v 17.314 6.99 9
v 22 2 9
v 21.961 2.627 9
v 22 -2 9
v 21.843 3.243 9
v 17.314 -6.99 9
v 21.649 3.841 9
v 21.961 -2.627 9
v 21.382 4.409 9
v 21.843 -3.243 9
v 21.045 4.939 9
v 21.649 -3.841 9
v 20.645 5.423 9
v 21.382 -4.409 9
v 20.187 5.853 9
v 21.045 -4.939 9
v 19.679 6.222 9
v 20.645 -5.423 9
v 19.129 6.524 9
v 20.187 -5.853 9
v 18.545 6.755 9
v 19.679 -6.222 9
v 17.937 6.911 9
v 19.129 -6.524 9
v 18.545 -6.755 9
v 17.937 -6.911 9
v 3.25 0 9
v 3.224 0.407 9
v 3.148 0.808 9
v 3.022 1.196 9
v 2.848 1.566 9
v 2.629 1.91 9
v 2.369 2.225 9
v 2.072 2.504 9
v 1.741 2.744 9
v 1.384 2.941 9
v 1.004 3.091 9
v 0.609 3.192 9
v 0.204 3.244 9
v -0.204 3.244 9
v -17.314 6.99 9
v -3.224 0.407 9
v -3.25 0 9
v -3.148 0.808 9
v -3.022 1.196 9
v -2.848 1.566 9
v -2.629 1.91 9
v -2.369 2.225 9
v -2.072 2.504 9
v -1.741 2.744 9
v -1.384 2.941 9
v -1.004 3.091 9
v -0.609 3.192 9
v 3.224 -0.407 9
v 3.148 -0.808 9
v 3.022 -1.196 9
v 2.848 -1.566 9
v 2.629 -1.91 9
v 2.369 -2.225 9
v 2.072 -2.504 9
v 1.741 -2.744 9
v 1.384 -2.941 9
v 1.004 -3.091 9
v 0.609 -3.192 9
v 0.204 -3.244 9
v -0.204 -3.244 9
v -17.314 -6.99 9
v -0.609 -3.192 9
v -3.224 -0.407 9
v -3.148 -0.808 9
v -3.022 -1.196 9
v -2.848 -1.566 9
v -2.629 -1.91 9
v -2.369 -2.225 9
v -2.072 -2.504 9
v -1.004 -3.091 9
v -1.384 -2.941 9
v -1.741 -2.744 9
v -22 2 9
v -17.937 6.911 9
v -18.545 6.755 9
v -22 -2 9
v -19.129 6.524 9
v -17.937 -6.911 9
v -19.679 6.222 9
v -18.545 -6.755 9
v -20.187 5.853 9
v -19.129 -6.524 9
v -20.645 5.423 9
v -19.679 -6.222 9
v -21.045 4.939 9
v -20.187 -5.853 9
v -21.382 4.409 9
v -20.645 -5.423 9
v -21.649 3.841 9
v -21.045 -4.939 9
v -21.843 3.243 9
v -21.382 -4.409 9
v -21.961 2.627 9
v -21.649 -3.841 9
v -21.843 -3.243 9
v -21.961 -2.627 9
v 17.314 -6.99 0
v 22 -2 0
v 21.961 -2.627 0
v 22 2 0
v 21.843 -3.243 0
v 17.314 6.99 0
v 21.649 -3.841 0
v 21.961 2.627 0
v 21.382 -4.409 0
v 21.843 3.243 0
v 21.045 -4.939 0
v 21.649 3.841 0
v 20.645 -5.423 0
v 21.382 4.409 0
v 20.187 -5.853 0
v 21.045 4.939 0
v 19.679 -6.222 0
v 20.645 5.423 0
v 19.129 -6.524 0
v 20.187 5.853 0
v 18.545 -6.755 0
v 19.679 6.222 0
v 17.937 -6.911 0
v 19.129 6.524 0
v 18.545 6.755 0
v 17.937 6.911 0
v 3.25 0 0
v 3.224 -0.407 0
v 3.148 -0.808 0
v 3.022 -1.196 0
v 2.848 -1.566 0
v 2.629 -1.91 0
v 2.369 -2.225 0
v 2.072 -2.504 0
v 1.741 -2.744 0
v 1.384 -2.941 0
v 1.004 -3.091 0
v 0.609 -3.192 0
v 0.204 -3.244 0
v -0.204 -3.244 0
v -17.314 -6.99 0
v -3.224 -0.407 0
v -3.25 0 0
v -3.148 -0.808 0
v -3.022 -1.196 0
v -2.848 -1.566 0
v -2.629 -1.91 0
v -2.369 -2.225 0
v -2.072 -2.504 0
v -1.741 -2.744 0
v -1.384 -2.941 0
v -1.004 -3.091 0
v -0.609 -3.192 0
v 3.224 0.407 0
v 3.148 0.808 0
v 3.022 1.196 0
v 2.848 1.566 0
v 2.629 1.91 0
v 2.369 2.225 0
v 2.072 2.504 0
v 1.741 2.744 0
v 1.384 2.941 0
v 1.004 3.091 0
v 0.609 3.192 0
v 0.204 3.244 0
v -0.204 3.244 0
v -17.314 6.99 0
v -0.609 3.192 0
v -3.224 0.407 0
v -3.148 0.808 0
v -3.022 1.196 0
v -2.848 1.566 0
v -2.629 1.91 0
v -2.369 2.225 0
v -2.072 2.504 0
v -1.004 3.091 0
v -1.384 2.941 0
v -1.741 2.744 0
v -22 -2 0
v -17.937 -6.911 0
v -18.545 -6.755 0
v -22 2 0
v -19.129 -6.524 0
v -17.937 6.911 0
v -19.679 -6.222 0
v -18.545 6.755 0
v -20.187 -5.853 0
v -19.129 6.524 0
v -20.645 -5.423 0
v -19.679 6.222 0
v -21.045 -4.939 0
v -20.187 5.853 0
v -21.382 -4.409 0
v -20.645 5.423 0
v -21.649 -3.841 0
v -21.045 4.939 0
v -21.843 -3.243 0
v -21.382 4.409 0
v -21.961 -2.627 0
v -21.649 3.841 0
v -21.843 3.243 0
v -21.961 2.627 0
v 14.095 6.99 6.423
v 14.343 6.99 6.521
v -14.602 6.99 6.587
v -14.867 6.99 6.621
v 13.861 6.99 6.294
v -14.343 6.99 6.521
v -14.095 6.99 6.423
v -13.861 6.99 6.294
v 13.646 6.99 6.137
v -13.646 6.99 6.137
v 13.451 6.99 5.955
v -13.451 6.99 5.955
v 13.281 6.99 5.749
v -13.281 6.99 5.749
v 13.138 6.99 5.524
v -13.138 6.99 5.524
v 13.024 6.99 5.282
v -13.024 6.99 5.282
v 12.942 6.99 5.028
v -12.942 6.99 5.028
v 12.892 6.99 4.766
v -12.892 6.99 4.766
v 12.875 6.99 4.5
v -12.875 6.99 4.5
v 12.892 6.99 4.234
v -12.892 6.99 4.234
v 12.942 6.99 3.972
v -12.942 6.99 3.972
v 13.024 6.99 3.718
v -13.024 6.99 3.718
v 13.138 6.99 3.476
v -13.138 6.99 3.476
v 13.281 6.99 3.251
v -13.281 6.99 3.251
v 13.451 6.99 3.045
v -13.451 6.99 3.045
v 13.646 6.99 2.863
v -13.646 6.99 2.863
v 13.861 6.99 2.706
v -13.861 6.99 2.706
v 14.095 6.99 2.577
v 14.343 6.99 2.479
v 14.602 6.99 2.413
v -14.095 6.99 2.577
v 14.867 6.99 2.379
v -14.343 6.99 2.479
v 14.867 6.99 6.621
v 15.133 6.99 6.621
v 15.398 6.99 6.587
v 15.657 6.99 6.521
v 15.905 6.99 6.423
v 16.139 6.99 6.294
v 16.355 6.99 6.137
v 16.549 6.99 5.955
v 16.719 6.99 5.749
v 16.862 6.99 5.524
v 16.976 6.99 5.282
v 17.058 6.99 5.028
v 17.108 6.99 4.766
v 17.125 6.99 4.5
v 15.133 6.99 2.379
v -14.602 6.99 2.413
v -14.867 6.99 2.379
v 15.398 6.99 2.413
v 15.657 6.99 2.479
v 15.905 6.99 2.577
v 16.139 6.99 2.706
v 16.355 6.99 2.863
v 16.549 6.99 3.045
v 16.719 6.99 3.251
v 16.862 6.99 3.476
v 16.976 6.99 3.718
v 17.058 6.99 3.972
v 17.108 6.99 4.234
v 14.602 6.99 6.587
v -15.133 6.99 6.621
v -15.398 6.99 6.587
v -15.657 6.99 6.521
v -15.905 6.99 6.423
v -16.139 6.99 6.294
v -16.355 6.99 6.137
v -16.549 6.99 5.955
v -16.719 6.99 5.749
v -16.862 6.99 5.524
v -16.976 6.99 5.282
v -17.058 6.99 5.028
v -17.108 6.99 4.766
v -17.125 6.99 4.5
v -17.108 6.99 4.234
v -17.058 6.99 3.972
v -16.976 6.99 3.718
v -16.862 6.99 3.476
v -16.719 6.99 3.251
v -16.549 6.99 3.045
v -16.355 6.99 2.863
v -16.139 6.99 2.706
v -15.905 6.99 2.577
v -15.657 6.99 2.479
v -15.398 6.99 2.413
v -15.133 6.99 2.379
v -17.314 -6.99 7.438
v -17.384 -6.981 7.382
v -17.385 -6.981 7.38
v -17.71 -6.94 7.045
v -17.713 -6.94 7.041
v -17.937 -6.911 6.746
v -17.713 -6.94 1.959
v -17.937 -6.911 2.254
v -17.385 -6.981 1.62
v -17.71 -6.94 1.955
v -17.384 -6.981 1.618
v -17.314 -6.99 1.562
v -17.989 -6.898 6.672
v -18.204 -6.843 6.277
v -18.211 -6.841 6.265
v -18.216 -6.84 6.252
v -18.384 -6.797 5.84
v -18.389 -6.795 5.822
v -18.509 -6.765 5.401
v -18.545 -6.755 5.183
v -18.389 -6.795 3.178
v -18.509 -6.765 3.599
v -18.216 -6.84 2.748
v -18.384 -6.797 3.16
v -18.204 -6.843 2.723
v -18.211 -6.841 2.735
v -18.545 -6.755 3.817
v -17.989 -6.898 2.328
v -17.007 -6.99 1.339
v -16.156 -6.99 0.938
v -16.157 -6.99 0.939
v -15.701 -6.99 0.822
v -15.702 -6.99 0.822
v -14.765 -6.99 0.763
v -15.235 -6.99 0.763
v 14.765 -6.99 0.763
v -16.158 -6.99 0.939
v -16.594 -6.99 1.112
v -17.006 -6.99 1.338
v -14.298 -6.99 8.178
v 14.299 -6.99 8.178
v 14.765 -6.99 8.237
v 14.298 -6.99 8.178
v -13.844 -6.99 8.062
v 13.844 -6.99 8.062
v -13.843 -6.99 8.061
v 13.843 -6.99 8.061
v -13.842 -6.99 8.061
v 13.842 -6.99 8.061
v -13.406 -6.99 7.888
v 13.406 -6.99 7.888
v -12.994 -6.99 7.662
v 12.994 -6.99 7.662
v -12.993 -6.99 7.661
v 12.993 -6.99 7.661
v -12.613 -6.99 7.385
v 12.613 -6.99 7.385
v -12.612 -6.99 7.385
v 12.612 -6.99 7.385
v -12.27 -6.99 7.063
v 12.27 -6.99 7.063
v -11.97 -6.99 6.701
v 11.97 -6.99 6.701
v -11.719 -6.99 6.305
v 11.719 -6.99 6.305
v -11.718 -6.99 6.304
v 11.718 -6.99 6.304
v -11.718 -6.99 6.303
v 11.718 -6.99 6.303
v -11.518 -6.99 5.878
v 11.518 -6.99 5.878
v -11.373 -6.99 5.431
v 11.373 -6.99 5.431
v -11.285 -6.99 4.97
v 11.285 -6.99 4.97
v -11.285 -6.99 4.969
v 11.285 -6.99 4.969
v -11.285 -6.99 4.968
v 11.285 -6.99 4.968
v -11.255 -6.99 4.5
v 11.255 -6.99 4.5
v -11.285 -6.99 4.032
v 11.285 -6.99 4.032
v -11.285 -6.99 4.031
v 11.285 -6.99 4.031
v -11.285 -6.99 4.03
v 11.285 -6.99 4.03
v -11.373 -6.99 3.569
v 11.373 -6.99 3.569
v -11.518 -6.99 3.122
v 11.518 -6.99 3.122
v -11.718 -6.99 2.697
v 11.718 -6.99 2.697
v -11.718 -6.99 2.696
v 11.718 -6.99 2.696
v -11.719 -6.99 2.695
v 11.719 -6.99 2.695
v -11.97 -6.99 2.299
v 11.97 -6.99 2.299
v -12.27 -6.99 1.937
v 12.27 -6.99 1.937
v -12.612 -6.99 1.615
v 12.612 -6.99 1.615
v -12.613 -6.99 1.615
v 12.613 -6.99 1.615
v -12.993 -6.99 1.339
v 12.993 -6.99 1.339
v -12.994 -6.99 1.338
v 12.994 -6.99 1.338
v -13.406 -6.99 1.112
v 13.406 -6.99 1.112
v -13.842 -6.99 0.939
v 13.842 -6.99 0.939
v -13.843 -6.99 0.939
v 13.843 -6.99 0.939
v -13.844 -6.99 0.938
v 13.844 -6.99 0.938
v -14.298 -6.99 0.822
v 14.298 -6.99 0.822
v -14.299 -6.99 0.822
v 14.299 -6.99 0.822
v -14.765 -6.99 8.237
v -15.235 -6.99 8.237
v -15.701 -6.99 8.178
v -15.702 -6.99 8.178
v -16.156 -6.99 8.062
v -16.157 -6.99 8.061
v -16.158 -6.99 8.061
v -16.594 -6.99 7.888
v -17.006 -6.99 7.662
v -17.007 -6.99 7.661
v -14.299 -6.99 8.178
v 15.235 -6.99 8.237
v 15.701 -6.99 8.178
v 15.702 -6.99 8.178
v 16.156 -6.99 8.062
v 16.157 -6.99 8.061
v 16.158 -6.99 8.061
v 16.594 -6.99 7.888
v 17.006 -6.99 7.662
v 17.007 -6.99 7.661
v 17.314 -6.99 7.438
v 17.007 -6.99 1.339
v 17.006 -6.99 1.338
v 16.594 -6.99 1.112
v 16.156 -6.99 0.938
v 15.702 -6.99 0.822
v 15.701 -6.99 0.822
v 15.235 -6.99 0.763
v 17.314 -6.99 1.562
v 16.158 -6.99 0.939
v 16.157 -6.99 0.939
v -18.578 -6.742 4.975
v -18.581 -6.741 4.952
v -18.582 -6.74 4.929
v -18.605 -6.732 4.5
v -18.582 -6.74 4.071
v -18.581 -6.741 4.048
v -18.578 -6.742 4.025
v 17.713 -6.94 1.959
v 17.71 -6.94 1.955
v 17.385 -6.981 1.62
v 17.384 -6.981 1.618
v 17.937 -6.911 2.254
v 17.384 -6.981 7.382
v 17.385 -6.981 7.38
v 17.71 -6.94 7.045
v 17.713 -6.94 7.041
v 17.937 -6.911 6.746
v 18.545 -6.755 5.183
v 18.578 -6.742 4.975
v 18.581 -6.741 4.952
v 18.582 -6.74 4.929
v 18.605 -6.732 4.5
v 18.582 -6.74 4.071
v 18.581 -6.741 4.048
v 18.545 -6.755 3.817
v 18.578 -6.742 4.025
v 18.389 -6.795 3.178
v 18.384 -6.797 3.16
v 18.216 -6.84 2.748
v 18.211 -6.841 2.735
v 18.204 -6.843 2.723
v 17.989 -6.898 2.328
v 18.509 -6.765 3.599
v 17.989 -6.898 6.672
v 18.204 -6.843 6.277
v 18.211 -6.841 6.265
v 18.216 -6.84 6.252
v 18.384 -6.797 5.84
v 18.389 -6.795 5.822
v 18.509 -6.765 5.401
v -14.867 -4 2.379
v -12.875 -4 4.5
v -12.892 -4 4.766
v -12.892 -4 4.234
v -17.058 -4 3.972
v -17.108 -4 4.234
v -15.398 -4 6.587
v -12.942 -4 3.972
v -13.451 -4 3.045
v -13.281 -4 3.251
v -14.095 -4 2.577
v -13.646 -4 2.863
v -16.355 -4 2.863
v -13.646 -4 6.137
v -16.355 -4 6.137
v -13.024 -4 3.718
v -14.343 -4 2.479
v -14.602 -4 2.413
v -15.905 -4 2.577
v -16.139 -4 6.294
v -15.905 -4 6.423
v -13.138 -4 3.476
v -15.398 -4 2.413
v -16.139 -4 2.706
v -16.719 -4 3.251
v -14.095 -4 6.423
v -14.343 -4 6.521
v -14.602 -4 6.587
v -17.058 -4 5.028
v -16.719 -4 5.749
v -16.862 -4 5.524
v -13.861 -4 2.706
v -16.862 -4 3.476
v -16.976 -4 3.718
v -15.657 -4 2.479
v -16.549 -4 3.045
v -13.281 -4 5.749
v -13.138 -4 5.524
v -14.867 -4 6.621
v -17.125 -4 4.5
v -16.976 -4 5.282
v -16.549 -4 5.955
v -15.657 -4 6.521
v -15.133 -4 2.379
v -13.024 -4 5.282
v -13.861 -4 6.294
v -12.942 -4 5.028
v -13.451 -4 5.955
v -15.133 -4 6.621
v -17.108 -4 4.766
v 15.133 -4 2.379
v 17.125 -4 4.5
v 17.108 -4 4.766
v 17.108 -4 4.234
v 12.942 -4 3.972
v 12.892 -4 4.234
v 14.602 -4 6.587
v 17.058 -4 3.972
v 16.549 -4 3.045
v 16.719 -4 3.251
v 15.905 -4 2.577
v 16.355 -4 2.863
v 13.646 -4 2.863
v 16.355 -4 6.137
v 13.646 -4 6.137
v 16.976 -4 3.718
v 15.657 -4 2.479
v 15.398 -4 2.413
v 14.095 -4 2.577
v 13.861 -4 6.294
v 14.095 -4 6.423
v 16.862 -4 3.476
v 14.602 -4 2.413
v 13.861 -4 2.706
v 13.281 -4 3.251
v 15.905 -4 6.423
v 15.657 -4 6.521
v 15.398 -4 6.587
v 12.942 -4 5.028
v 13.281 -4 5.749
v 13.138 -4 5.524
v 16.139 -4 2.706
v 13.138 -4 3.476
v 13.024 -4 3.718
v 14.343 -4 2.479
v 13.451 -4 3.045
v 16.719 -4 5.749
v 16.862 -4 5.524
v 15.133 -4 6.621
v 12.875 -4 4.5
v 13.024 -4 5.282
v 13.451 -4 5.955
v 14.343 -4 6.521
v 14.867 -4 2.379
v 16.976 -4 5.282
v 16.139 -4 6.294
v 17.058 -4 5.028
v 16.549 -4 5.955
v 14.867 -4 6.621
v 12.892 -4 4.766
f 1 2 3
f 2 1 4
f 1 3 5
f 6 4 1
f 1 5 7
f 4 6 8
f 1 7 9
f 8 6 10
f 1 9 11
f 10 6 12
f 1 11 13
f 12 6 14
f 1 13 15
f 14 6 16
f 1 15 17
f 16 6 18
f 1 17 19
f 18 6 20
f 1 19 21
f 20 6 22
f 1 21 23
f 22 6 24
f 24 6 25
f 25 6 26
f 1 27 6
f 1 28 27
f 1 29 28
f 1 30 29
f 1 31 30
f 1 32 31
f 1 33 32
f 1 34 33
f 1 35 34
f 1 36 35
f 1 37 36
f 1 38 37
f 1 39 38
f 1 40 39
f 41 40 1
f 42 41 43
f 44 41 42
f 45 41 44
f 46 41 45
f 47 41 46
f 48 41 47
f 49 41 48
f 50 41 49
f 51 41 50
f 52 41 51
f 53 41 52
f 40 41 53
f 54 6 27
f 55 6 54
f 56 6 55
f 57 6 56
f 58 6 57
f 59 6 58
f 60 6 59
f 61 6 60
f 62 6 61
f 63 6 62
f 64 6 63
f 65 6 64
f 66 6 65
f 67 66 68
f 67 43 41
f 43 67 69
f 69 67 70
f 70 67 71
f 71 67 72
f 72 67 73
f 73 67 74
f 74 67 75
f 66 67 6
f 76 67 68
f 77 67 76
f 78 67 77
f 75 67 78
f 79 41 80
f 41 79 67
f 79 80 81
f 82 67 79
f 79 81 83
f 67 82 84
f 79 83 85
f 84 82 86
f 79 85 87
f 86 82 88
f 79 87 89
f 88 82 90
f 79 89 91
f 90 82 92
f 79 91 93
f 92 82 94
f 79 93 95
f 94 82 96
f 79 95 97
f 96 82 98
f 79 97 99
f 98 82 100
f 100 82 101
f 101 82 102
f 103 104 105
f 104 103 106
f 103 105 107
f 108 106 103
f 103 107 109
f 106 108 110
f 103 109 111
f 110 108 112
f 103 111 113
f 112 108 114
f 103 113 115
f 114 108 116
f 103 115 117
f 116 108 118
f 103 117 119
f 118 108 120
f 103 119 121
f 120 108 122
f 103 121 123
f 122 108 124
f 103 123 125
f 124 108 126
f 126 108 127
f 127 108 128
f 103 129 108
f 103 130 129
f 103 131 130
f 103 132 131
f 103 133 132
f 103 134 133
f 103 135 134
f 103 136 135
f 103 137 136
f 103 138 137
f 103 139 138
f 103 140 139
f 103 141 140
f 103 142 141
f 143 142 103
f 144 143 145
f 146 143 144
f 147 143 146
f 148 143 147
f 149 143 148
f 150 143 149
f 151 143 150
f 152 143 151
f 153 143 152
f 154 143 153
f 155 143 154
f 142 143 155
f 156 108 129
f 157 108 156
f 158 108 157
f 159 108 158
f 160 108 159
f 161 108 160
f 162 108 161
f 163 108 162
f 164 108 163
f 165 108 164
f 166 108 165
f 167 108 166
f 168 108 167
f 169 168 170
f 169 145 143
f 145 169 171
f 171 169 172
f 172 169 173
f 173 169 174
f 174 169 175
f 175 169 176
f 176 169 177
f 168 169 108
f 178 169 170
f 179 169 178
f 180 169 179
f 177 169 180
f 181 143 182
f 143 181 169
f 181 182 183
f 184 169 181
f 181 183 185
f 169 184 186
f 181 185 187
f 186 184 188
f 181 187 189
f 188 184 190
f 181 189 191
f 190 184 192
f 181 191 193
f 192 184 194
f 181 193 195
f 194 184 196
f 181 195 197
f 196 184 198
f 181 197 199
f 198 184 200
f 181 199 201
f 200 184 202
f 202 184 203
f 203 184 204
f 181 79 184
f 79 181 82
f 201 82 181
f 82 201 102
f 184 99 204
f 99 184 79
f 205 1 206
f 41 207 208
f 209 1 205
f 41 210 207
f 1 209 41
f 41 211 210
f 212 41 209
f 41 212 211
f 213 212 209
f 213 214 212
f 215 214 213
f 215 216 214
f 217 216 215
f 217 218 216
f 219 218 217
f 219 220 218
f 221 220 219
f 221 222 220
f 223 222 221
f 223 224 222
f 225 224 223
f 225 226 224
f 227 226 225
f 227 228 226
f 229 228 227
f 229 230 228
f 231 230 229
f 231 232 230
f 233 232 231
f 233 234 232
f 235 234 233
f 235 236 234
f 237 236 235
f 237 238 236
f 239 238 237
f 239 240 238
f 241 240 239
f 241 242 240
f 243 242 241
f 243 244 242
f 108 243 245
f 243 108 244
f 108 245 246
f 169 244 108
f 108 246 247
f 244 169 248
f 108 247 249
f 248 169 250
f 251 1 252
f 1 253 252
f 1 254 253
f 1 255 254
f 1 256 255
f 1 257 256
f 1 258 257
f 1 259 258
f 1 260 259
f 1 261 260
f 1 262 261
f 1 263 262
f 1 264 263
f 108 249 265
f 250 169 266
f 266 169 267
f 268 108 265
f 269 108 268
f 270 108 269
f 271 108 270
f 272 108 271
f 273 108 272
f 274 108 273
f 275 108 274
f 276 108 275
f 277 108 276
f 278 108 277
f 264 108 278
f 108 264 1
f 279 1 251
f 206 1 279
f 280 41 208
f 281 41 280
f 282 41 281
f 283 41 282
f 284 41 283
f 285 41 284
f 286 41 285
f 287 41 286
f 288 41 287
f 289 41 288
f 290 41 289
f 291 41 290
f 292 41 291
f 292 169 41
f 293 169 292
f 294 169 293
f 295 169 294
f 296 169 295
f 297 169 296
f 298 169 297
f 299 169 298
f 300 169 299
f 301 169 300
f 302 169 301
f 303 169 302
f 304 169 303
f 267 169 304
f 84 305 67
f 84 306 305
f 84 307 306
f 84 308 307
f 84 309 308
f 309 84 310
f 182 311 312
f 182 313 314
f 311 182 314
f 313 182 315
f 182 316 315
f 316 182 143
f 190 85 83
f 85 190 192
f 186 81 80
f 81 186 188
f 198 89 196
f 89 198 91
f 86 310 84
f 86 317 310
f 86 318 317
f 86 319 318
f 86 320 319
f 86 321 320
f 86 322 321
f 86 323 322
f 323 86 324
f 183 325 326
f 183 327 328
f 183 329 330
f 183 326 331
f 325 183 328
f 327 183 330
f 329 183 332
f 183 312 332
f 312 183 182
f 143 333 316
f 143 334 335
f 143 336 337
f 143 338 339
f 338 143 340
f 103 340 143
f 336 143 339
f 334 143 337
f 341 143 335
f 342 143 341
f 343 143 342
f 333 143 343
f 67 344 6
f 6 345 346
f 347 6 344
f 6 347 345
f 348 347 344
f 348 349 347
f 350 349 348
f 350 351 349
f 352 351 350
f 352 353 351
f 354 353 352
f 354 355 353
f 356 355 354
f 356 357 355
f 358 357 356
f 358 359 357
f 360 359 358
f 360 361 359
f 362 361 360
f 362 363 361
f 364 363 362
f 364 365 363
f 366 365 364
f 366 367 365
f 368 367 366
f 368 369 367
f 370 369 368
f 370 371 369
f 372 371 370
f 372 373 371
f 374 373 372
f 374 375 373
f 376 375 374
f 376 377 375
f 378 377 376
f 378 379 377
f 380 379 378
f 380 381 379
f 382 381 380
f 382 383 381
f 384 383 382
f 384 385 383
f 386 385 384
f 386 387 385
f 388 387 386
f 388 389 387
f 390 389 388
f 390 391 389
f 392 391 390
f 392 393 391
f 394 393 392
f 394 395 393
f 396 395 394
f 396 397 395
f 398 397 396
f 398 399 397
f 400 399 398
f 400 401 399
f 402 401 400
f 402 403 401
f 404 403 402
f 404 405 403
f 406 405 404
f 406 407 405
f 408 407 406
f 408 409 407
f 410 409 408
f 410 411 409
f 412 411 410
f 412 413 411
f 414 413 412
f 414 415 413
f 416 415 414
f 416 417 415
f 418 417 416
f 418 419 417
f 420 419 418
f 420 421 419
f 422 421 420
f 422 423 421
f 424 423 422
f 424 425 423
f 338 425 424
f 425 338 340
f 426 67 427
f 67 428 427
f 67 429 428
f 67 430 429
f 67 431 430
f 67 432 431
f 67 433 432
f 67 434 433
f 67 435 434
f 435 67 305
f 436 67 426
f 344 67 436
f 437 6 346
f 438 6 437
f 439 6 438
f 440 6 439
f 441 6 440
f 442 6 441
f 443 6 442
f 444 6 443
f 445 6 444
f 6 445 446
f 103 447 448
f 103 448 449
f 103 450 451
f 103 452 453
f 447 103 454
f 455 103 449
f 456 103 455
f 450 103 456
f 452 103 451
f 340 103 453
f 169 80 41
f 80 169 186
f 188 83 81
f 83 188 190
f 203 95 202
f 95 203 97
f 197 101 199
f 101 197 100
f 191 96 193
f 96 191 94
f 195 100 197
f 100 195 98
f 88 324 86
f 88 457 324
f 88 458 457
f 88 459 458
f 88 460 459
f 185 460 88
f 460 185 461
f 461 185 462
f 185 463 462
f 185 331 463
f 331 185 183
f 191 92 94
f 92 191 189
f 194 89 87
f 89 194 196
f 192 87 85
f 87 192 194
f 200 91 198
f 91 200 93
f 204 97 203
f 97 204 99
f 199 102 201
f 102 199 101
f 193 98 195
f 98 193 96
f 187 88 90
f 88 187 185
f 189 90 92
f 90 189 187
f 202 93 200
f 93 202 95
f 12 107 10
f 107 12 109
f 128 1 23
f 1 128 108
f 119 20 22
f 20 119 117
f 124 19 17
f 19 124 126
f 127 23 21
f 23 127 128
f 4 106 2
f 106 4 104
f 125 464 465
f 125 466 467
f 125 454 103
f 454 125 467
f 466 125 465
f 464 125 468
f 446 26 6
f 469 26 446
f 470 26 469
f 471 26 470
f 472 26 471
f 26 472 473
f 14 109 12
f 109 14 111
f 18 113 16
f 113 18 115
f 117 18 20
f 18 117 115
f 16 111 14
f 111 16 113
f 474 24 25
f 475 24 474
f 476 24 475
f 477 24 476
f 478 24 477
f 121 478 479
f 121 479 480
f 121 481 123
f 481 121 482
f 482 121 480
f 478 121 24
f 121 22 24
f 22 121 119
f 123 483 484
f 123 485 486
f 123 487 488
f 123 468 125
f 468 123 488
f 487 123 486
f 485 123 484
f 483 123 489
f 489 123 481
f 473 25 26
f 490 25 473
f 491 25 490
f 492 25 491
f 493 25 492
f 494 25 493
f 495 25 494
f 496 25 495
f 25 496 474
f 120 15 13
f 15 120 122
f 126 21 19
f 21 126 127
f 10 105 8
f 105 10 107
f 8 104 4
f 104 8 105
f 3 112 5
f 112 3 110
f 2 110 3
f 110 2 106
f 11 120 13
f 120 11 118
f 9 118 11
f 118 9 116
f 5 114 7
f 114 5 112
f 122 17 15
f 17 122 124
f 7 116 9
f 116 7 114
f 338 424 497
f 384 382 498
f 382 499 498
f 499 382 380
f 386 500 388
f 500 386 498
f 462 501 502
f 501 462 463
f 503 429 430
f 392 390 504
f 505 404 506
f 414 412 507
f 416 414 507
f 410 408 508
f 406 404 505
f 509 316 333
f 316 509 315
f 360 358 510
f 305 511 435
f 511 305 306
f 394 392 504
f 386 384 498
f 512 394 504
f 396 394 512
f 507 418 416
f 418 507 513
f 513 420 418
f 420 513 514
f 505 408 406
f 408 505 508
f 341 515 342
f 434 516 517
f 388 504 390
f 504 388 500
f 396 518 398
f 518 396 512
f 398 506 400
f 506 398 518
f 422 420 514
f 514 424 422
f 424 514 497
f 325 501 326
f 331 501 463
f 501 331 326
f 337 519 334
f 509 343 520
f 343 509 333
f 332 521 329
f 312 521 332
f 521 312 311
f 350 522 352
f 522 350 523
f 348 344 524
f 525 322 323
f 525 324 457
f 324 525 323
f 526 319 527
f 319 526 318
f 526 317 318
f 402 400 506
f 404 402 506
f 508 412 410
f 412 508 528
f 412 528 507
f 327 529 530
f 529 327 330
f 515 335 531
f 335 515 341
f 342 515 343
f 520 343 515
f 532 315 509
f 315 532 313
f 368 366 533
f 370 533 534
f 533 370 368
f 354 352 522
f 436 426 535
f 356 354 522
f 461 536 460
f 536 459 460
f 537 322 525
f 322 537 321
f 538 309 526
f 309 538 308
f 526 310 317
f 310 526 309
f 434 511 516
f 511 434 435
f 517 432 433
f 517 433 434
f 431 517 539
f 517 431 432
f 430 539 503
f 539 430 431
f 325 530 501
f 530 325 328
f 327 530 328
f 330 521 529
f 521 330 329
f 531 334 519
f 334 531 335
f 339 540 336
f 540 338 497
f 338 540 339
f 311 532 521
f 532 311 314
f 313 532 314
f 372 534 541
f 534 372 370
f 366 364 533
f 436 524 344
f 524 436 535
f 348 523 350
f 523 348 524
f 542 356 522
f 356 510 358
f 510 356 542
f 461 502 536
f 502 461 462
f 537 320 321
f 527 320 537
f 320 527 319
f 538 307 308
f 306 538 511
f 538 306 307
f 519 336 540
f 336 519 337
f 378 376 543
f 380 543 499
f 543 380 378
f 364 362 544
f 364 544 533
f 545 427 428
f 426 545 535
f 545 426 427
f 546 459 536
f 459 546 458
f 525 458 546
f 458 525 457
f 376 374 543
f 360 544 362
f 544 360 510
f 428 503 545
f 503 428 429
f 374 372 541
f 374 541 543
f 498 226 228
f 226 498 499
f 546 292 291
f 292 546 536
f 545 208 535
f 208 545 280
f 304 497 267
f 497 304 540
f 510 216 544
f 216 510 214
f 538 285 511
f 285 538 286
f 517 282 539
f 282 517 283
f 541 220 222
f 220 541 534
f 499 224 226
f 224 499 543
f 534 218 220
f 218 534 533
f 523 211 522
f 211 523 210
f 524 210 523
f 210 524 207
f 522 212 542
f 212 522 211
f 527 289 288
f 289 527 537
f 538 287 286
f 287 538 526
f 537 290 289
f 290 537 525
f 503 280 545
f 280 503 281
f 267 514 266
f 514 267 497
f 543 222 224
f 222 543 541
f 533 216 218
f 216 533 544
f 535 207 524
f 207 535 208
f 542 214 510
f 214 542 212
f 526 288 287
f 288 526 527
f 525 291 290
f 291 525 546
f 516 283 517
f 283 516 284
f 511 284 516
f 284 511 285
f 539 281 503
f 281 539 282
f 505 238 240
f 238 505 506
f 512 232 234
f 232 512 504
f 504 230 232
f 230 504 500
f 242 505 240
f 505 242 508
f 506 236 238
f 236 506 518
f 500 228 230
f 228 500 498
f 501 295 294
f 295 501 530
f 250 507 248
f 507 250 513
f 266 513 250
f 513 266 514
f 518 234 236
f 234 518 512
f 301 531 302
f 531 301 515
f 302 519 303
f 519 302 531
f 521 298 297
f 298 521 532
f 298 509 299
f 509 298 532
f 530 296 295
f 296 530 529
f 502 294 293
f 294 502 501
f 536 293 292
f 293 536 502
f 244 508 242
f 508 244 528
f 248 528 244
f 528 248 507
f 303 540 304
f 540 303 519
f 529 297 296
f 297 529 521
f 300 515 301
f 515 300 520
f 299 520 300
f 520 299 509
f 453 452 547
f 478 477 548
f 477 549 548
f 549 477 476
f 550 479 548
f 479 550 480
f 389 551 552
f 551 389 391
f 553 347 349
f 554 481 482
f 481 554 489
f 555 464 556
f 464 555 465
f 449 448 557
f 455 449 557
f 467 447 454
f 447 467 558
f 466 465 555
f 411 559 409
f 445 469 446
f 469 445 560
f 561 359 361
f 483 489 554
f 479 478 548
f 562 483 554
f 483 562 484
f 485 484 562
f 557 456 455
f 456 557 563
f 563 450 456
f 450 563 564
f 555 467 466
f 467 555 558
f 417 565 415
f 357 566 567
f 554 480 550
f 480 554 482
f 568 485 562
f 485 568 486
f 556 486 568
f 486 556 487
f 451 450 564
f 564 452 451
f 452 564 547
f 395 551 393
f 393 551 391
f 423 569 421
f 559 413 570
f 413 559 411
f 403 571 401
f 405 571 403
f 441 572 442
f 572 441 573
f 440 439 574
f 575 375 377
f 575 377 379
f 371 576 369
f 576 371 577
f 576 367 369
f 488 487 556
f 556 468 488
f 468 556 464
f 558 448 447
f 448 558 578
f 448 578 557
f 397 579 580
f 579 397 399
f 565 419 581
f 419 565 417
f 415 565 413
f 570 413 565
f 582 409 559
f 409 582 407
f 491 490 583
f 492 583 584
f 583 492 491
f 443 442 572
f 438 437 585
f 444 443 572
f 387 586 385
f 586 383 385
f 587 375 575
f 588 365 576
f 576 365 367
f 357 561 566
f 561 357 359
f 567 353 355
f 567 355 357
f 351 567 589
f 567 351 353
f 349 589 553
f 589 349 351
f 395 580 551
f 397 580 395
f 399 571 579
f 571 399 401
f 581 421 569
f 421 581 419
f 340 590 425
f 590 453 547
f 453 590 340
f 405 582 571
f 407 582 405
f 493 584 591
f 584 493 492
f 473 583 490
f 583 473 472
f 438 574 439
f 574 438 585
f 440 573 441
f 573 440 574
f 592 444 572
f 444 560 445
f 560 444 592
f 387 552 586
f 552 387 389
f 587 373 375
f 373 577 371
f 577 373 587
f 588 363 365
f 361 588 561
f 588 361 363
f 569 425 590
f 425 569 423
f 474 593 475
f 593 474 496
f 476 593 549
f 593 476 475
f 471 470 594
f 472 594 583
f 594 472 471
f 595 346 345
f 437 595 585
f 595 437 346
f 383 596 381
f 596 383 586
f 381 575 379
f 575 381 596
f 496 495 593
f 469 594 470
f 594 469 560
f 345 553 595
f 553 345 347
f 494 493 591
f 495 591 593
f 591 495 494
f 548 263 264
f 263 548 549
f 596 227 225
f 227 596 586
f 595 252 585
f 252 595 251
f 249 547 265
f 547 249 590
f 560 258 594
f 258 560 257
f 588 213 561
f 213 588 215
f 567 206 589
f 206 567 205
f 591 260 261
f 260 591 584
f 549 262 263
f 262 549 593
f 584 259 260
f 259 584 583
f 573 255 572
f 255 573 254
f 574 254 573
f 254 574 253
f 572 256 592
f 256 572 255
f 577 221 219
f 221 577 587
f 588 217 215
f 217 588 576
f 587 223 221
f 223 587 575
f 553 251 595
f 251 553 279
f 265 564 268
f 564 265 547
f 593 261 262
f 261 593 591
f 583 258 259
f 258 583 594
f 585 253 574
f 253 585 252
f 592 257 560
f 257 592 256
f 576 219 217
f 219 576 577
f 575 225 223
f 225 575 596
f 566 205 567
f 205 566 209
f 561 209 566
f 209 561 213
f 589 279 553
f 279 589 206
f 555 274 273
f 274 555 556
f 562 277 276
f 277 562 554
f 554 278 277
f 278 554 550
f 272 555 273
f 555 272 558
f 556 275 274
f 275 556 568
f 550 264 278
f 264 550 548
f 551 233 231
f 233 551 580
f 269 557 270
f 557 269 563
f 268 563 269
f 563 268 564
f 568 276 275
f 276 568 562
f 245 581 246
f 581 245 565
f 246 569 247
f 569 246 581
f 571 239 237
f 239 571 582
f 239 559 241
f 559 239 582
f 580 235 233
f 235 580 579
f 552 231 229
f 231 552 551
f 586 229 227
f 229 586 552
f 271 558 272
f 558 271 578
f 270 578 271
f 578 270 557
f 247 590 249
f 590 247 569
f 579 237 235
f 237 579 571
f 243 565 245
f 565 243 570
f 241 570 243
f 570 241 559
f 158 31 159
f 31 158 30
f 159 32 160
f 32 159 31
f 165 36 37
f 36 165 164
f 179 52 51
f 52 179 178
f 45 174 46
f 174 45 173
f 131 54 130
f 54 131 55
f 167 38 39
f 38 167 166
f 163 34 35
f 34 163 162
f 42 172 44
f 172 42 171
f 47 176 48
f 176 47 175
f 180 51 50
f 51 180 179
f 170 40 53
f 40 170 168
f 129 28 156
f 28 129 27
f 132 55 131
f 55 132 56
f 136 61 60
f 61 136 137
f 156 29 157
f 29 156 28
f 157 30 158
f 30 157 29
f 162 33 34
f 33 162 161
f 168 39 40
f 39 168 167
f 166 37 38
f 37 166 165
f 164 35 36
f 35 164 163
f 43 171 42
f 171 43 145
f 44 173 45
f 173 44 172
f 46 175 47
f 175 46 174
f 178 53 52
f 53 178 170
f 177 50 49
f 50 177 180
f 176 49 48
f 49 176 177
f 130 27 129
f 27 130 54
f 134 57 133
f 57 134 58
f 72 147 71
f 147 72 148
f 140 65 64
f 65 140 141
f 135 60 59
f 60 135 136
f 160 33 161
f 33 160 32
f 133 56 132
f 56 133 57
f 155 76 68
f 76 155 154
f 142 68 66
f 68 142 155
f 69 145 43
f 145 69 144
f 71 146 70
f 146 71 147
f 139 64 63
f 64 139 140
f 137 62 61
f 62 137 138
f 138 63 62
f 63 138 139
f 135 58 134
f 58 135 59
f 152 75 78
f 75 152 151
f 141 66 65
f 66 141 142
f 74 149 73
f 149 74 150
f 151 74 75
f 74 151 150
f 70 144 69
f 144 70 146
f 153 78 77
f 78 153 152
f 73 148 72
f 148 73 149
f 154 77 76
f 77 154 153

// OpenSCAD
$fn = 50;


difference() {
	union() {
		cylinder(h = 9, r = 7.0000000000);
		translate(v = [-7.5000000000, 0.0000000000, 0]) {
			hull() {
				translate(v = [-9.5000000000, 2.0000000000, 0]) {
					cylinder(h = 9, r = 5);
				}
				translate(v = [9.5000000000, 2.0000000000, 0]) {
					cylinder(h = 9, r = 5);
				}
				translate(v = [-9.5000000000, -2.0000000000, 0]) {
					cylinder(h = 9, r = 5);
				}
				translate(v = [9.5000000000, -2.0000000000, 0]) {
					cylinder(h = 9, r = 5);
				}
			}
		}
		translate(v = [-7.5000000000, 0.0000000000, 0]) {
			hull() {
				translate(v = [-9.5000000000, 2.0000000000, 0]) {
					cylinder(h = 9, r = 5);
				}
				translate(v = [9.5000000000, 2.0000000000, 0]) {
					cylinder(h = 9, r = 5);
				}
				translate(v = [-9.5000000000, -2.0000000000, 0]) {
					cylinder(h = 9, r = 5);
				}
				translate(v = [9.5000000000, -2.0000000000, 0]) {
					cylinder(h = 9, r = 5);
				}
			}
		}
		translate(v = [7.5000000000, 0.0000000000, 0]) {
			hull() {
				translate(v = [-9.5000000000, 2.0000000000, 0]) {
					cylinder(h = 9, r = 5);
				}
				translate(v = [9.5000000000, 2.0000000000, 0]) {
					cylinder(h = 9, r = 5);
				}
				translate(v = [-9.5000000000, -2.0000000000, 0]) {
					cylinder(h = 9, r = 5);
				}
				translate(v = [9.5000000000, -2.0000000000, 0]) {
					cylinder(h = 9, r = 5);
				}
			}
		}
		translate(v = [7.5000000000, 0.0000000000, 0]) {
			hull() {
				translate(v = [-9.5000000000, 2.0000000000, 0]) {
					cylinder(h = 9, r = 5);
				}
				translate(v = [9.5000000000, 2.0000000000, 0]) {
					cylinder(h = 9, r = 5);
				}
				translate(v = [-9.5000000000, -2.0000000000, 0]) {
					cylinder(h = 9, r = 5);
				}
				translate(v = [9.5000000000, -2.0000000000, 0]) {
					cylinder(h = 9, r = 5);
				}
			}
		}
	}
	union() {
		translate(v = [-15.0000000000, -7.0000000000, 4.5000000000]) {
			rotate(a = [90, 0, 0]) {
				difference() {
					union() {
						#translate(v = [0, 0, -14.0000000000]) {
							cylinder(h = 14, r = 2.0000000000);
						}
						#translate(v = [0, 0, -3]) {
							cylinder(h = 3, r1 = 2.1250000000, r2 = 3.7500000000);
						}
						#translate(v = [0, 0, -14.0000000000]) {
							cylinder(h = 14, r = 2.1250000000);
						}
						#translate(v = [0, 0, -14.0000000000]) {
							cylinder(h = 14, r = 2.0000000000);
						}
					}
					union();
				}
			}
		}
		translate(v = [15.0000000000, -7.0000000000, 4.5000000000]) {
			rotate(a = [90, 0, 0]) {
				difference() {
					union() {
						#translate(v = [0, 0, -14.0000000000]) {
							cylinder(h = 14, r = 2.0000000000);
						}
						#translate(v = [0, 0, -3]) {
							cylinder(h = 3, r1 = 2.1250000000, r2 = 3.7500000000);
						}
						#translate(v = [0, 0, -14.0000000000]) {
							cylinder(h = 14, r = 2.1250000000);
						}
						#translate(v = [0, 0, -14.0000000000]) {
							cylinder(h = 14, r = 2.0000000000);
						}
					}
					union();
				}
			}
		}
		translate(v = [0, 0, -100]) {
			cylinder(h = 200, r = 3.2500000000);
		}
		translate(v = [0, 0, -100]) {
			cylinder(h = 200, r = 1.8000000000);
		}
	}
}
